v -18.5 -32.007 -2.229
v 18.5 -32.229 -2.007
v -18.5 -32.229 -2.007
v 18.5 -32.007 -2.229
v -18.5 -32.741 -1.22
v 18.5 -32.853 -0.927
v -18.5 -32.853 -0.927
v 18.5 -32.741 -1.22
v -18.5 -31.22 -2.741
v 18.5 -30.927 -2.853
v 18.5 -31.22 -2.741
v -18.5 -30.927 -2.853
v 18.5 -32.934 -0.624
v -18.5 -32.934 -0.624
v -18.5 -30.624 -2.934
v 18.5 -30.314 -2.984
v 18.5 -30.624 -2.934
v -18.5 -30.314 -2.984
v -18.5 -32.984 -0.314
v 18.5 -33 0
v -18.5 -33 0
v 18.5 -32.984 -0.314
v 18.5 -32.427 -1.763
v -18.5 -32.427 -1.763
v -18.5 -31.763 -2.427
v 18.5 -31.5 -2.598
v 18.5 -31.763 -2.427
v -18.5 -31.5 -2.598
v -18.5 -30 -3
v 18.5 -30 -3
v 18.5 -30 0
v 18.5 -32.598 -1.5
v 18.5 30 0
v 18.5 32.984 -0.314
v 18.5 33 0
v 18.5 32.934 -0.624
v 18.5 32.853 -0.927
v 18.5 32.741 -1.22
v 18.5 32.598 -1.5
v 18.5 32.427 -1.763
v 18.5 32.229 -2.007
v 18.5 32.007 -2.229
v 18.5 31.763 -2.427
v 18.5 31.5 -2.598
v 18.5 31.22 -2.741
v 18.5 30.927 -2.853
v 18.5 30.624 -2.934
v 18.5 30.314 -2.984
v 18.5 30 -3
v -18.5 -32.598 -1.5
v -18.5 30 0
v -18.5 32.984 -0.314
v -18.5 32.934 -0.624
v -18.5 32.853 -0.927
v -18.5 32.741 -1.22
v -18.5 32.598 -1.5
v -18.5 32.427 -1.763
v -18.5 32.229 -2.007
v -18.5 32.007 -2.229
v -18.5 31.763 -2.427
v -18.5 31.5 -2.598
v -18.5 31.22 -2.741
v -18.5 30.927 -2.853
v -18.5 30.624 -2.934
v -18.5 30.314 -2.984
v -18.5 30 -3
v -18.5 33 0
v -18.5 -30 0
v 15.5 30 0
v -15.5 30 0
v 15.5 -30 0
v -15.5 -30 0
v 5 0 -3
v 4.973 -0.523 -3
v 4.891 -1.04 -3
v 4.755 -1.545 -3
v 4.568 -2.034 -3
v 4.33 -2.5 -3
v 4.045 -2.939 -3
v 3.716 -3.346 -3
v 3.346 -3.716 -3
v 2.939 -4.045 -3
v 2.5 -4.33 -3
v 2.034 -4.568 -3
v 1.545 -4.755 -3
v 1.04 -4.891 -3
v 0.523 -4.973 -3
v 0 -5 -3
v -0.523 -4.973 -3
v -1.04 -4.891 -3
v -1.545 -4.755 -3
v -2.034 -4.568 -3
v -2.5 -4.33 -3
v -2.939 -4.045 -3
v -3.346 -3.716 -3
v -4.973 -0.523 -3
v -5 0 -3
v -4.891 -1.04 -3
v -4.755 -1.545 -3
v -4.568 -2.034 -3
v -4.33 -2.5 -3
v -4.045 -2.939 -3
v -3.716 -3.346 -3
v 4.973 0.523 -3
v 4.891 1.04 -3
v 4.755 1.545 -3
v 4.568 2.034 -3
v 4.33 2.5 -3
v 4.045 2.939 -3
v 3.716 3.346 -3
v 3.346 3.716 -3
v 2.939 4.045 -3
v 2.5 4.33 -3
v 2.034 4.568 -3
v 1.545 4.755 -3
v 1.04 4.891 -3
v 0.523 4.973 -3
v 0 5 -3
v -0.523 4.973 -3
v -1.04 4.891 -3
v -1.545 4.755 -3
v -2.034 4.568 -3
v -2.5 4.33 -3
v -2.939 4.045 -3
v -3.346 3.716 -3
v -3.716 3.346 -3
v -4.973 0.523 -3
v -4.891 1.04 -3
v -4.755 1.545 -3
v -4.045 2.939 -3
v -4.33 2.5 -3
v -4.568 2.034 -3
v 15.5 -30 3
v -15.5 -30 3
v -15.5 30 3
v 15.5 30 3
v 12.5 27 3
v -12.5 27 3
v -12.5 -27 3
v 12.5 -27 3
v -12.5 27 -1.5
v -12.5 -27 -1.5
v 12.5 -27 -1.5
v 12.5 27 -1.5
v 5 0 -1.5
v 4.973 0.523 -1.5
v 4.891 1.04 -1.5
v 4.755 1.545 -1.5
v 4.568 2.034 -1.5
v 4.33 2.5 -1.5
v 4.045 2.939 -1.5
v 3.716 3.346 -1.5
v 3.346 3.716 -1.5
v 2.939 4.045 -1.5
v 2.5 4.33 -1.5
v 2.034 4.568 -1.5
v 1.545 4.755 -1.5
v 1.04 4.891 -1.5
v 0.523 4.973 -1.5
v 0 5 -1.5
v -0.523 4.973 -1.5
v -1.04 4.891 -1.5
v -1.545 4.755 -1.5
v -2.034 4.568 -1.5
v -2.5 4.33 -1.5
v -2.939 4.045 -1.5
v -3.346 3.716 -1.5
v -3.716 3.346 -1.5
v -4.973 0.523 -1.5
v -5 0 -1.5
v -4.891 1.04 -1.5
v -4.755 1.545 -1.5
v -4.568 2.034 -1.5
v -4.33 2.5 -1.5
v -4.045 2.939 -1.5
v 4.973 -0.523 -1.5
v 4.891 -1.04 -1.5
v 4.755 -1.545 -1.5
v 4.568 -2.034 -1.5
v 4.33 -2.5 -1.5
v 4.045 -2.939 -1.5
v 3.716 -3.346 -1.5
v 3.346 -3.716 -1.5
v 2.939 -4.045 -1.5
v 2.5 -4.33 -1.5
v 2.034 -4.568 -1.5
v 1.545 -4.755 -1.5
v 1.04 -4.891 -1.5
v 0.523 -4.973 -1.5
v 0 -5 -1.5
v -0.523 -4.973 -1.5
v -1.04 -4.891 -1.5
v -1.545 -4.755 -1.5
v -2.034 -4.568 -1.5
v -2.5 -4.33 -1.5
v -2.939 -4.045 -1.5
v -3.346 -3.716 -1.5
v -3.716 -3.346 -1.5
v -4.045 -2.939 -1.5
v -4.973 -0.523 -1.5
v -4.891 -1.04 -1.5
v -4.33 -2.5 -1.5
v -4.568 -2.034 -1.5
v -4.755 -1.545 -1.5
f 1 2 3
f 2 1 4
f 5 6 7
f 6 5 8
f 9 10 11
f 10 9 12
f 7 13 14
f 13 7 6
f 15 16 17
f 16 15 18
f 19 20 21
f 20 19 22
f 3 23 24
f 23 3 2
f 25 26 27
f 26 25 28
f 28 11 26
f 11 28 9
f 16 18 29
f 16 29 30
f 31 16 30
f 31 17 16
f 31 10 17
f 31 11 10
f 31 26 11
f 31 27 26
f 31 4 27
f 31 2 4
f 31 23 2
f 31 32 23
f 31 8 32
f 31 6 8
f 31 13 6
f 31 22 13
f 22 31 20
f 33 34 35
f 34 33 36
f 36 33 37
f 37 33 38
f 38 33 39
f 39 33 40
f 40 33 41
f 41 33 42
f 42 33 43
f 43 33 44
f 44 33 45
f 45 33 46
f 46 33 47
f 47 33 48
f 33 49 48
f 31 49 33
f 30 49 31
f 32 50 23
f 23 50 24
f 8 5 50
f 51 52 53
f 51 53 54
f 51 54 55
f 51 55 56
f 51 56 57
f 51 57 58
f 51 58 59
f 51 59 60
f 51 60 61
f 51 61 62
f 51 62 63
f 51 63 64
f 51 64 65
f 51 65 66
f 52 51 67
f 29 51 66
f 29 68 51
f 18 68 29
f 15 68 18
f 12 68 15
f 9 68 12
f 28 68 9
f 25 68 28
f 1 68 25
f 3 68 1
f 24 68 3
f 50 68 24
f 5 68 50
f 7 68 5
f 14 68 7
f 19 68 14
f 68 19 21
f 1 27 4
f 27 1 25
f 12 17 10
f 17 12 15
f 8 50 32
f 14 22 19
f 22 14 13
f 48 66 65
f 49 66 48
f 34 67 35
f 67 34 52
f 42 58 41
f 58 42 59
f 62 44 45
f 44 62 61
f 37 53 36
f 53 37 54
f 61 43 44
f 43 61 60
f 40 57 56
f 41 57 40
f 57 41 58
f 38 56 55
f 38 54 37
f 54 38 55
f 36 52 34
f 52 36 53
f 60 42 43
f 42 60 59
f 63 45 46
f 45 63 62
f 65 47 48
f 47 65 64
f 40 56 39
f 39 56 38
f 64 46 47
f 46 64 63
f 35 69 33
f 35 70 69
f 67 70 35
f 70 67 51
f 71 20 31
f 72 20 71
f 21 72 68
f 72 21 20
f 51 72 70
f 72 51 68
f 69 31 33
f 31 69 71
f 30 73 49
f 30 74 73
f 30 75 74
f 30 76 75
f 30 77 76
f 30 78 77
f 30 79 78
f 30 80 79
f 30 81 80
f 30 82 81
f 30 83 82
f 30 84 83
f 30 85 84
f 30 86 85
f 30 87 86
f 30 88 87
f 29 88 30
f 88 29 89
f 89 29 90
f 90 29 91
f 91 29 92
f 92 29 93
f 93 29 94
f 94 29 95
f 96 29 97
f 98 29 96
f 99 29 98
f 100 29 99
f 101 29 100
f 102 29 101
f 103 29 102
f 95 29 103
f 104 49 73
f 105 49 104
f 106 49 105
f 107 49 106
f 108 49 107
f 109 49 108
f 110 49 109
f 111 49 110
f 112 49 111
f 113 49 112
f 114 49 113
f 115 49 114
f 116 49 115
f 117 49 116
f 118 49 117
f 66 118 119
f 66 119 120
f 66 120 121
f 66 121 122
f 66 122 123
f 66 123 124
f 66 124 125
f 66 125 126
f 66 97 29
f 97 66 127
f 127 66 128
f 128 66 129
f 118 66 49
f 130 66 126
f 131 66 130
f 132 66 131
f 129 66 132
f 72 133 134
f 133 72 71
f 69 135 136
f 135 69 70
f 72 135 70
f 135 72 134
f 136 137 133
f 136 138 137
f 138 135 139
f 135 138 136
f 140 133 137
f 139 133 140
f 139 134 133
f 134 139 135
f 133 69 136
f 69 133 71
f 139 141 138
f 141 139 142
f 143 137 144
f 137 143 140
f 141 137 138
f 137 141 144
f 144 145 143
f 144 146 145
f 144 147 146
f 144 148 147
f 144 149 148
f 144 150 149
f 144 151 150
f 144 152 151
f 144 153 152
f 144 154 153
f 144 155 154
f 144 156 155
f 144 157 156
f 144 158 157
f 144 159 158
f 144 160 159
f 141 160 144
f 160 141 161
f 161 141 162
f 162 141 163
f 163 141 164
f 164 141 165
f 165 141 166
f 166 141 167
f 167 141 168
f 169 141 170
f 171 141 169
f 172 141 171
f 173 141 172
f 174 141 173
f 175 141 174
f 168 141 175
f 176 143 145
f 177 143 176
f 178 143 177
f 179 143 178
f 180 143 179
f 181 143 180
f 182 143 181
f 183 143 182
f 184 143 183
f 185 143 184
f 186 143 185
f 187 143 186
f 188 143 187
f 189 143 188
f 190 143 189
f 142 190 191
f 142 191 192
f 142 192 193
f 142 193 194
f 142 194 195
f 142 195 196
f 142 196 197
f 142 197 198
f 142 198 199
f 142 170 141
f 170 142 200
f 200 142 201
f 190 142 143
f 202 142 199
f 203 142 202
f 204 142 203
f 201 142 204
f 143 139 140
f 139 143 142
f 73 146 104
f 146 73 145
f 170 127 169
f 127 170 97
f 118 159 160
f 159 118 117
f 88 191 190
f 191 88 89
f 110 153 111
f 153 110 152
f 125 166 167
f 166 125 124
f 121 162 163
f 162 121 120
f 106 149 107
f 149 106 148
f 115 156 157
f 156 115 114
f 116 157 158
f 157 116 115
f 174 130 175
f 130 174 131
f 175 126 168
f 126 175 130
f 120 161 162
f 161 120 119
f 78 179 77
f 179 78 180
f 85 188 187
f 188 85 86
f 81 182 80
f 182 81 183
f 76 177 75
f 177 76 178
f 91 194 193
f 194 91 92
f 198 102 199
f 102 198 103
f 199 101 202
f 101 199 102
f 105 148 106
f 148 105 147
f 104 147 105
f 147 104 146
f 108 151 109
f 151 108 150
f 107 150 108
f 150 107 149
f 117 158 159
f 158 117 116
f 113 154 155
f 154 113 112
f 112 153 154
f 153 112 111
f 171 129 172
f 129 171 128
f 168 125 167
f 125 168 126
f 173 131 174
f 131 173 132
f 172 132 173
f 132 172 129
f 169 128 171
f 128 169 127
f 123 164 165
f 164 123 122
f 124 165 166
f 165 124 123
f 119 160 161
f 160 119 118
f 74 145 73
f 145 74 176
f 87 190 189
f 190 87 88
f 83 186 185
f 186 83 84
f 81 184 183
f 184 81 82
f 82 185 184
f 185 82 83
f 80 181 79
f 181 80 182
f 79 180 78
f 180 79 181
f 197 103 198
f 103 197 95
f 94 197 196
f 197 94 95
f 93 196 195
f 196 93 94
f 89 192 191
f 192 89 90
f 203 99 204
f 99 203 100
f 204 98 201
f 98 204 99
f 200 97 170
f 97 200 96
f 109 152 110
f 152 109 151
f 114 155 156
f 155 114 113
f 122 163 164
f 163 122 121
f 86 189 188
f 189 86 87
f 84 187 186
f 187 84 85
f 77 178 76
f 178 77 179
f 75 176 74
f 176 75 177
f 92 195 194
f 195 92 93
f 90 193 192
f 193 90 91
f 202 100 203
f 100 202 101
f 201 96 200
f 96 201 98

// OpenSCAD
thickness = 3;
servo_width  = 23;
servo_depth  = 13;

width = 50-servo_depth;
depth = (servo_width+10)*2;

$fn = 60;

difference() {
    union() {
        translate([0, 0, -thickness/2]) cube([width, depth-thickness*2, thickness], center=true);
        translate([0, 0, thickness/2]) cube([width-thickness*2, depth-thickness*2, thickness], center=true);
        difference() {
            union() {
                translate([0, -depth/2+thickness, 0]) rotate([0, 90, 0]) cylinder(h=width, r=thickness, center=true);
                translate([0, depth/2-thickness, 0]) rotate([0, 90, 0]) cylinder(h=width, r=thickness, center=true);
            }
            translate([0, 0, 50]) cube([100, 100, 100], center=true);
        }
    }
    union() {
        translate([0, 0, thickness]) cube([width-thickness*4, depth-thickness*4, thickness*3], center=true);
        cylinder(h=100, r=5, center=true);
    }
}
